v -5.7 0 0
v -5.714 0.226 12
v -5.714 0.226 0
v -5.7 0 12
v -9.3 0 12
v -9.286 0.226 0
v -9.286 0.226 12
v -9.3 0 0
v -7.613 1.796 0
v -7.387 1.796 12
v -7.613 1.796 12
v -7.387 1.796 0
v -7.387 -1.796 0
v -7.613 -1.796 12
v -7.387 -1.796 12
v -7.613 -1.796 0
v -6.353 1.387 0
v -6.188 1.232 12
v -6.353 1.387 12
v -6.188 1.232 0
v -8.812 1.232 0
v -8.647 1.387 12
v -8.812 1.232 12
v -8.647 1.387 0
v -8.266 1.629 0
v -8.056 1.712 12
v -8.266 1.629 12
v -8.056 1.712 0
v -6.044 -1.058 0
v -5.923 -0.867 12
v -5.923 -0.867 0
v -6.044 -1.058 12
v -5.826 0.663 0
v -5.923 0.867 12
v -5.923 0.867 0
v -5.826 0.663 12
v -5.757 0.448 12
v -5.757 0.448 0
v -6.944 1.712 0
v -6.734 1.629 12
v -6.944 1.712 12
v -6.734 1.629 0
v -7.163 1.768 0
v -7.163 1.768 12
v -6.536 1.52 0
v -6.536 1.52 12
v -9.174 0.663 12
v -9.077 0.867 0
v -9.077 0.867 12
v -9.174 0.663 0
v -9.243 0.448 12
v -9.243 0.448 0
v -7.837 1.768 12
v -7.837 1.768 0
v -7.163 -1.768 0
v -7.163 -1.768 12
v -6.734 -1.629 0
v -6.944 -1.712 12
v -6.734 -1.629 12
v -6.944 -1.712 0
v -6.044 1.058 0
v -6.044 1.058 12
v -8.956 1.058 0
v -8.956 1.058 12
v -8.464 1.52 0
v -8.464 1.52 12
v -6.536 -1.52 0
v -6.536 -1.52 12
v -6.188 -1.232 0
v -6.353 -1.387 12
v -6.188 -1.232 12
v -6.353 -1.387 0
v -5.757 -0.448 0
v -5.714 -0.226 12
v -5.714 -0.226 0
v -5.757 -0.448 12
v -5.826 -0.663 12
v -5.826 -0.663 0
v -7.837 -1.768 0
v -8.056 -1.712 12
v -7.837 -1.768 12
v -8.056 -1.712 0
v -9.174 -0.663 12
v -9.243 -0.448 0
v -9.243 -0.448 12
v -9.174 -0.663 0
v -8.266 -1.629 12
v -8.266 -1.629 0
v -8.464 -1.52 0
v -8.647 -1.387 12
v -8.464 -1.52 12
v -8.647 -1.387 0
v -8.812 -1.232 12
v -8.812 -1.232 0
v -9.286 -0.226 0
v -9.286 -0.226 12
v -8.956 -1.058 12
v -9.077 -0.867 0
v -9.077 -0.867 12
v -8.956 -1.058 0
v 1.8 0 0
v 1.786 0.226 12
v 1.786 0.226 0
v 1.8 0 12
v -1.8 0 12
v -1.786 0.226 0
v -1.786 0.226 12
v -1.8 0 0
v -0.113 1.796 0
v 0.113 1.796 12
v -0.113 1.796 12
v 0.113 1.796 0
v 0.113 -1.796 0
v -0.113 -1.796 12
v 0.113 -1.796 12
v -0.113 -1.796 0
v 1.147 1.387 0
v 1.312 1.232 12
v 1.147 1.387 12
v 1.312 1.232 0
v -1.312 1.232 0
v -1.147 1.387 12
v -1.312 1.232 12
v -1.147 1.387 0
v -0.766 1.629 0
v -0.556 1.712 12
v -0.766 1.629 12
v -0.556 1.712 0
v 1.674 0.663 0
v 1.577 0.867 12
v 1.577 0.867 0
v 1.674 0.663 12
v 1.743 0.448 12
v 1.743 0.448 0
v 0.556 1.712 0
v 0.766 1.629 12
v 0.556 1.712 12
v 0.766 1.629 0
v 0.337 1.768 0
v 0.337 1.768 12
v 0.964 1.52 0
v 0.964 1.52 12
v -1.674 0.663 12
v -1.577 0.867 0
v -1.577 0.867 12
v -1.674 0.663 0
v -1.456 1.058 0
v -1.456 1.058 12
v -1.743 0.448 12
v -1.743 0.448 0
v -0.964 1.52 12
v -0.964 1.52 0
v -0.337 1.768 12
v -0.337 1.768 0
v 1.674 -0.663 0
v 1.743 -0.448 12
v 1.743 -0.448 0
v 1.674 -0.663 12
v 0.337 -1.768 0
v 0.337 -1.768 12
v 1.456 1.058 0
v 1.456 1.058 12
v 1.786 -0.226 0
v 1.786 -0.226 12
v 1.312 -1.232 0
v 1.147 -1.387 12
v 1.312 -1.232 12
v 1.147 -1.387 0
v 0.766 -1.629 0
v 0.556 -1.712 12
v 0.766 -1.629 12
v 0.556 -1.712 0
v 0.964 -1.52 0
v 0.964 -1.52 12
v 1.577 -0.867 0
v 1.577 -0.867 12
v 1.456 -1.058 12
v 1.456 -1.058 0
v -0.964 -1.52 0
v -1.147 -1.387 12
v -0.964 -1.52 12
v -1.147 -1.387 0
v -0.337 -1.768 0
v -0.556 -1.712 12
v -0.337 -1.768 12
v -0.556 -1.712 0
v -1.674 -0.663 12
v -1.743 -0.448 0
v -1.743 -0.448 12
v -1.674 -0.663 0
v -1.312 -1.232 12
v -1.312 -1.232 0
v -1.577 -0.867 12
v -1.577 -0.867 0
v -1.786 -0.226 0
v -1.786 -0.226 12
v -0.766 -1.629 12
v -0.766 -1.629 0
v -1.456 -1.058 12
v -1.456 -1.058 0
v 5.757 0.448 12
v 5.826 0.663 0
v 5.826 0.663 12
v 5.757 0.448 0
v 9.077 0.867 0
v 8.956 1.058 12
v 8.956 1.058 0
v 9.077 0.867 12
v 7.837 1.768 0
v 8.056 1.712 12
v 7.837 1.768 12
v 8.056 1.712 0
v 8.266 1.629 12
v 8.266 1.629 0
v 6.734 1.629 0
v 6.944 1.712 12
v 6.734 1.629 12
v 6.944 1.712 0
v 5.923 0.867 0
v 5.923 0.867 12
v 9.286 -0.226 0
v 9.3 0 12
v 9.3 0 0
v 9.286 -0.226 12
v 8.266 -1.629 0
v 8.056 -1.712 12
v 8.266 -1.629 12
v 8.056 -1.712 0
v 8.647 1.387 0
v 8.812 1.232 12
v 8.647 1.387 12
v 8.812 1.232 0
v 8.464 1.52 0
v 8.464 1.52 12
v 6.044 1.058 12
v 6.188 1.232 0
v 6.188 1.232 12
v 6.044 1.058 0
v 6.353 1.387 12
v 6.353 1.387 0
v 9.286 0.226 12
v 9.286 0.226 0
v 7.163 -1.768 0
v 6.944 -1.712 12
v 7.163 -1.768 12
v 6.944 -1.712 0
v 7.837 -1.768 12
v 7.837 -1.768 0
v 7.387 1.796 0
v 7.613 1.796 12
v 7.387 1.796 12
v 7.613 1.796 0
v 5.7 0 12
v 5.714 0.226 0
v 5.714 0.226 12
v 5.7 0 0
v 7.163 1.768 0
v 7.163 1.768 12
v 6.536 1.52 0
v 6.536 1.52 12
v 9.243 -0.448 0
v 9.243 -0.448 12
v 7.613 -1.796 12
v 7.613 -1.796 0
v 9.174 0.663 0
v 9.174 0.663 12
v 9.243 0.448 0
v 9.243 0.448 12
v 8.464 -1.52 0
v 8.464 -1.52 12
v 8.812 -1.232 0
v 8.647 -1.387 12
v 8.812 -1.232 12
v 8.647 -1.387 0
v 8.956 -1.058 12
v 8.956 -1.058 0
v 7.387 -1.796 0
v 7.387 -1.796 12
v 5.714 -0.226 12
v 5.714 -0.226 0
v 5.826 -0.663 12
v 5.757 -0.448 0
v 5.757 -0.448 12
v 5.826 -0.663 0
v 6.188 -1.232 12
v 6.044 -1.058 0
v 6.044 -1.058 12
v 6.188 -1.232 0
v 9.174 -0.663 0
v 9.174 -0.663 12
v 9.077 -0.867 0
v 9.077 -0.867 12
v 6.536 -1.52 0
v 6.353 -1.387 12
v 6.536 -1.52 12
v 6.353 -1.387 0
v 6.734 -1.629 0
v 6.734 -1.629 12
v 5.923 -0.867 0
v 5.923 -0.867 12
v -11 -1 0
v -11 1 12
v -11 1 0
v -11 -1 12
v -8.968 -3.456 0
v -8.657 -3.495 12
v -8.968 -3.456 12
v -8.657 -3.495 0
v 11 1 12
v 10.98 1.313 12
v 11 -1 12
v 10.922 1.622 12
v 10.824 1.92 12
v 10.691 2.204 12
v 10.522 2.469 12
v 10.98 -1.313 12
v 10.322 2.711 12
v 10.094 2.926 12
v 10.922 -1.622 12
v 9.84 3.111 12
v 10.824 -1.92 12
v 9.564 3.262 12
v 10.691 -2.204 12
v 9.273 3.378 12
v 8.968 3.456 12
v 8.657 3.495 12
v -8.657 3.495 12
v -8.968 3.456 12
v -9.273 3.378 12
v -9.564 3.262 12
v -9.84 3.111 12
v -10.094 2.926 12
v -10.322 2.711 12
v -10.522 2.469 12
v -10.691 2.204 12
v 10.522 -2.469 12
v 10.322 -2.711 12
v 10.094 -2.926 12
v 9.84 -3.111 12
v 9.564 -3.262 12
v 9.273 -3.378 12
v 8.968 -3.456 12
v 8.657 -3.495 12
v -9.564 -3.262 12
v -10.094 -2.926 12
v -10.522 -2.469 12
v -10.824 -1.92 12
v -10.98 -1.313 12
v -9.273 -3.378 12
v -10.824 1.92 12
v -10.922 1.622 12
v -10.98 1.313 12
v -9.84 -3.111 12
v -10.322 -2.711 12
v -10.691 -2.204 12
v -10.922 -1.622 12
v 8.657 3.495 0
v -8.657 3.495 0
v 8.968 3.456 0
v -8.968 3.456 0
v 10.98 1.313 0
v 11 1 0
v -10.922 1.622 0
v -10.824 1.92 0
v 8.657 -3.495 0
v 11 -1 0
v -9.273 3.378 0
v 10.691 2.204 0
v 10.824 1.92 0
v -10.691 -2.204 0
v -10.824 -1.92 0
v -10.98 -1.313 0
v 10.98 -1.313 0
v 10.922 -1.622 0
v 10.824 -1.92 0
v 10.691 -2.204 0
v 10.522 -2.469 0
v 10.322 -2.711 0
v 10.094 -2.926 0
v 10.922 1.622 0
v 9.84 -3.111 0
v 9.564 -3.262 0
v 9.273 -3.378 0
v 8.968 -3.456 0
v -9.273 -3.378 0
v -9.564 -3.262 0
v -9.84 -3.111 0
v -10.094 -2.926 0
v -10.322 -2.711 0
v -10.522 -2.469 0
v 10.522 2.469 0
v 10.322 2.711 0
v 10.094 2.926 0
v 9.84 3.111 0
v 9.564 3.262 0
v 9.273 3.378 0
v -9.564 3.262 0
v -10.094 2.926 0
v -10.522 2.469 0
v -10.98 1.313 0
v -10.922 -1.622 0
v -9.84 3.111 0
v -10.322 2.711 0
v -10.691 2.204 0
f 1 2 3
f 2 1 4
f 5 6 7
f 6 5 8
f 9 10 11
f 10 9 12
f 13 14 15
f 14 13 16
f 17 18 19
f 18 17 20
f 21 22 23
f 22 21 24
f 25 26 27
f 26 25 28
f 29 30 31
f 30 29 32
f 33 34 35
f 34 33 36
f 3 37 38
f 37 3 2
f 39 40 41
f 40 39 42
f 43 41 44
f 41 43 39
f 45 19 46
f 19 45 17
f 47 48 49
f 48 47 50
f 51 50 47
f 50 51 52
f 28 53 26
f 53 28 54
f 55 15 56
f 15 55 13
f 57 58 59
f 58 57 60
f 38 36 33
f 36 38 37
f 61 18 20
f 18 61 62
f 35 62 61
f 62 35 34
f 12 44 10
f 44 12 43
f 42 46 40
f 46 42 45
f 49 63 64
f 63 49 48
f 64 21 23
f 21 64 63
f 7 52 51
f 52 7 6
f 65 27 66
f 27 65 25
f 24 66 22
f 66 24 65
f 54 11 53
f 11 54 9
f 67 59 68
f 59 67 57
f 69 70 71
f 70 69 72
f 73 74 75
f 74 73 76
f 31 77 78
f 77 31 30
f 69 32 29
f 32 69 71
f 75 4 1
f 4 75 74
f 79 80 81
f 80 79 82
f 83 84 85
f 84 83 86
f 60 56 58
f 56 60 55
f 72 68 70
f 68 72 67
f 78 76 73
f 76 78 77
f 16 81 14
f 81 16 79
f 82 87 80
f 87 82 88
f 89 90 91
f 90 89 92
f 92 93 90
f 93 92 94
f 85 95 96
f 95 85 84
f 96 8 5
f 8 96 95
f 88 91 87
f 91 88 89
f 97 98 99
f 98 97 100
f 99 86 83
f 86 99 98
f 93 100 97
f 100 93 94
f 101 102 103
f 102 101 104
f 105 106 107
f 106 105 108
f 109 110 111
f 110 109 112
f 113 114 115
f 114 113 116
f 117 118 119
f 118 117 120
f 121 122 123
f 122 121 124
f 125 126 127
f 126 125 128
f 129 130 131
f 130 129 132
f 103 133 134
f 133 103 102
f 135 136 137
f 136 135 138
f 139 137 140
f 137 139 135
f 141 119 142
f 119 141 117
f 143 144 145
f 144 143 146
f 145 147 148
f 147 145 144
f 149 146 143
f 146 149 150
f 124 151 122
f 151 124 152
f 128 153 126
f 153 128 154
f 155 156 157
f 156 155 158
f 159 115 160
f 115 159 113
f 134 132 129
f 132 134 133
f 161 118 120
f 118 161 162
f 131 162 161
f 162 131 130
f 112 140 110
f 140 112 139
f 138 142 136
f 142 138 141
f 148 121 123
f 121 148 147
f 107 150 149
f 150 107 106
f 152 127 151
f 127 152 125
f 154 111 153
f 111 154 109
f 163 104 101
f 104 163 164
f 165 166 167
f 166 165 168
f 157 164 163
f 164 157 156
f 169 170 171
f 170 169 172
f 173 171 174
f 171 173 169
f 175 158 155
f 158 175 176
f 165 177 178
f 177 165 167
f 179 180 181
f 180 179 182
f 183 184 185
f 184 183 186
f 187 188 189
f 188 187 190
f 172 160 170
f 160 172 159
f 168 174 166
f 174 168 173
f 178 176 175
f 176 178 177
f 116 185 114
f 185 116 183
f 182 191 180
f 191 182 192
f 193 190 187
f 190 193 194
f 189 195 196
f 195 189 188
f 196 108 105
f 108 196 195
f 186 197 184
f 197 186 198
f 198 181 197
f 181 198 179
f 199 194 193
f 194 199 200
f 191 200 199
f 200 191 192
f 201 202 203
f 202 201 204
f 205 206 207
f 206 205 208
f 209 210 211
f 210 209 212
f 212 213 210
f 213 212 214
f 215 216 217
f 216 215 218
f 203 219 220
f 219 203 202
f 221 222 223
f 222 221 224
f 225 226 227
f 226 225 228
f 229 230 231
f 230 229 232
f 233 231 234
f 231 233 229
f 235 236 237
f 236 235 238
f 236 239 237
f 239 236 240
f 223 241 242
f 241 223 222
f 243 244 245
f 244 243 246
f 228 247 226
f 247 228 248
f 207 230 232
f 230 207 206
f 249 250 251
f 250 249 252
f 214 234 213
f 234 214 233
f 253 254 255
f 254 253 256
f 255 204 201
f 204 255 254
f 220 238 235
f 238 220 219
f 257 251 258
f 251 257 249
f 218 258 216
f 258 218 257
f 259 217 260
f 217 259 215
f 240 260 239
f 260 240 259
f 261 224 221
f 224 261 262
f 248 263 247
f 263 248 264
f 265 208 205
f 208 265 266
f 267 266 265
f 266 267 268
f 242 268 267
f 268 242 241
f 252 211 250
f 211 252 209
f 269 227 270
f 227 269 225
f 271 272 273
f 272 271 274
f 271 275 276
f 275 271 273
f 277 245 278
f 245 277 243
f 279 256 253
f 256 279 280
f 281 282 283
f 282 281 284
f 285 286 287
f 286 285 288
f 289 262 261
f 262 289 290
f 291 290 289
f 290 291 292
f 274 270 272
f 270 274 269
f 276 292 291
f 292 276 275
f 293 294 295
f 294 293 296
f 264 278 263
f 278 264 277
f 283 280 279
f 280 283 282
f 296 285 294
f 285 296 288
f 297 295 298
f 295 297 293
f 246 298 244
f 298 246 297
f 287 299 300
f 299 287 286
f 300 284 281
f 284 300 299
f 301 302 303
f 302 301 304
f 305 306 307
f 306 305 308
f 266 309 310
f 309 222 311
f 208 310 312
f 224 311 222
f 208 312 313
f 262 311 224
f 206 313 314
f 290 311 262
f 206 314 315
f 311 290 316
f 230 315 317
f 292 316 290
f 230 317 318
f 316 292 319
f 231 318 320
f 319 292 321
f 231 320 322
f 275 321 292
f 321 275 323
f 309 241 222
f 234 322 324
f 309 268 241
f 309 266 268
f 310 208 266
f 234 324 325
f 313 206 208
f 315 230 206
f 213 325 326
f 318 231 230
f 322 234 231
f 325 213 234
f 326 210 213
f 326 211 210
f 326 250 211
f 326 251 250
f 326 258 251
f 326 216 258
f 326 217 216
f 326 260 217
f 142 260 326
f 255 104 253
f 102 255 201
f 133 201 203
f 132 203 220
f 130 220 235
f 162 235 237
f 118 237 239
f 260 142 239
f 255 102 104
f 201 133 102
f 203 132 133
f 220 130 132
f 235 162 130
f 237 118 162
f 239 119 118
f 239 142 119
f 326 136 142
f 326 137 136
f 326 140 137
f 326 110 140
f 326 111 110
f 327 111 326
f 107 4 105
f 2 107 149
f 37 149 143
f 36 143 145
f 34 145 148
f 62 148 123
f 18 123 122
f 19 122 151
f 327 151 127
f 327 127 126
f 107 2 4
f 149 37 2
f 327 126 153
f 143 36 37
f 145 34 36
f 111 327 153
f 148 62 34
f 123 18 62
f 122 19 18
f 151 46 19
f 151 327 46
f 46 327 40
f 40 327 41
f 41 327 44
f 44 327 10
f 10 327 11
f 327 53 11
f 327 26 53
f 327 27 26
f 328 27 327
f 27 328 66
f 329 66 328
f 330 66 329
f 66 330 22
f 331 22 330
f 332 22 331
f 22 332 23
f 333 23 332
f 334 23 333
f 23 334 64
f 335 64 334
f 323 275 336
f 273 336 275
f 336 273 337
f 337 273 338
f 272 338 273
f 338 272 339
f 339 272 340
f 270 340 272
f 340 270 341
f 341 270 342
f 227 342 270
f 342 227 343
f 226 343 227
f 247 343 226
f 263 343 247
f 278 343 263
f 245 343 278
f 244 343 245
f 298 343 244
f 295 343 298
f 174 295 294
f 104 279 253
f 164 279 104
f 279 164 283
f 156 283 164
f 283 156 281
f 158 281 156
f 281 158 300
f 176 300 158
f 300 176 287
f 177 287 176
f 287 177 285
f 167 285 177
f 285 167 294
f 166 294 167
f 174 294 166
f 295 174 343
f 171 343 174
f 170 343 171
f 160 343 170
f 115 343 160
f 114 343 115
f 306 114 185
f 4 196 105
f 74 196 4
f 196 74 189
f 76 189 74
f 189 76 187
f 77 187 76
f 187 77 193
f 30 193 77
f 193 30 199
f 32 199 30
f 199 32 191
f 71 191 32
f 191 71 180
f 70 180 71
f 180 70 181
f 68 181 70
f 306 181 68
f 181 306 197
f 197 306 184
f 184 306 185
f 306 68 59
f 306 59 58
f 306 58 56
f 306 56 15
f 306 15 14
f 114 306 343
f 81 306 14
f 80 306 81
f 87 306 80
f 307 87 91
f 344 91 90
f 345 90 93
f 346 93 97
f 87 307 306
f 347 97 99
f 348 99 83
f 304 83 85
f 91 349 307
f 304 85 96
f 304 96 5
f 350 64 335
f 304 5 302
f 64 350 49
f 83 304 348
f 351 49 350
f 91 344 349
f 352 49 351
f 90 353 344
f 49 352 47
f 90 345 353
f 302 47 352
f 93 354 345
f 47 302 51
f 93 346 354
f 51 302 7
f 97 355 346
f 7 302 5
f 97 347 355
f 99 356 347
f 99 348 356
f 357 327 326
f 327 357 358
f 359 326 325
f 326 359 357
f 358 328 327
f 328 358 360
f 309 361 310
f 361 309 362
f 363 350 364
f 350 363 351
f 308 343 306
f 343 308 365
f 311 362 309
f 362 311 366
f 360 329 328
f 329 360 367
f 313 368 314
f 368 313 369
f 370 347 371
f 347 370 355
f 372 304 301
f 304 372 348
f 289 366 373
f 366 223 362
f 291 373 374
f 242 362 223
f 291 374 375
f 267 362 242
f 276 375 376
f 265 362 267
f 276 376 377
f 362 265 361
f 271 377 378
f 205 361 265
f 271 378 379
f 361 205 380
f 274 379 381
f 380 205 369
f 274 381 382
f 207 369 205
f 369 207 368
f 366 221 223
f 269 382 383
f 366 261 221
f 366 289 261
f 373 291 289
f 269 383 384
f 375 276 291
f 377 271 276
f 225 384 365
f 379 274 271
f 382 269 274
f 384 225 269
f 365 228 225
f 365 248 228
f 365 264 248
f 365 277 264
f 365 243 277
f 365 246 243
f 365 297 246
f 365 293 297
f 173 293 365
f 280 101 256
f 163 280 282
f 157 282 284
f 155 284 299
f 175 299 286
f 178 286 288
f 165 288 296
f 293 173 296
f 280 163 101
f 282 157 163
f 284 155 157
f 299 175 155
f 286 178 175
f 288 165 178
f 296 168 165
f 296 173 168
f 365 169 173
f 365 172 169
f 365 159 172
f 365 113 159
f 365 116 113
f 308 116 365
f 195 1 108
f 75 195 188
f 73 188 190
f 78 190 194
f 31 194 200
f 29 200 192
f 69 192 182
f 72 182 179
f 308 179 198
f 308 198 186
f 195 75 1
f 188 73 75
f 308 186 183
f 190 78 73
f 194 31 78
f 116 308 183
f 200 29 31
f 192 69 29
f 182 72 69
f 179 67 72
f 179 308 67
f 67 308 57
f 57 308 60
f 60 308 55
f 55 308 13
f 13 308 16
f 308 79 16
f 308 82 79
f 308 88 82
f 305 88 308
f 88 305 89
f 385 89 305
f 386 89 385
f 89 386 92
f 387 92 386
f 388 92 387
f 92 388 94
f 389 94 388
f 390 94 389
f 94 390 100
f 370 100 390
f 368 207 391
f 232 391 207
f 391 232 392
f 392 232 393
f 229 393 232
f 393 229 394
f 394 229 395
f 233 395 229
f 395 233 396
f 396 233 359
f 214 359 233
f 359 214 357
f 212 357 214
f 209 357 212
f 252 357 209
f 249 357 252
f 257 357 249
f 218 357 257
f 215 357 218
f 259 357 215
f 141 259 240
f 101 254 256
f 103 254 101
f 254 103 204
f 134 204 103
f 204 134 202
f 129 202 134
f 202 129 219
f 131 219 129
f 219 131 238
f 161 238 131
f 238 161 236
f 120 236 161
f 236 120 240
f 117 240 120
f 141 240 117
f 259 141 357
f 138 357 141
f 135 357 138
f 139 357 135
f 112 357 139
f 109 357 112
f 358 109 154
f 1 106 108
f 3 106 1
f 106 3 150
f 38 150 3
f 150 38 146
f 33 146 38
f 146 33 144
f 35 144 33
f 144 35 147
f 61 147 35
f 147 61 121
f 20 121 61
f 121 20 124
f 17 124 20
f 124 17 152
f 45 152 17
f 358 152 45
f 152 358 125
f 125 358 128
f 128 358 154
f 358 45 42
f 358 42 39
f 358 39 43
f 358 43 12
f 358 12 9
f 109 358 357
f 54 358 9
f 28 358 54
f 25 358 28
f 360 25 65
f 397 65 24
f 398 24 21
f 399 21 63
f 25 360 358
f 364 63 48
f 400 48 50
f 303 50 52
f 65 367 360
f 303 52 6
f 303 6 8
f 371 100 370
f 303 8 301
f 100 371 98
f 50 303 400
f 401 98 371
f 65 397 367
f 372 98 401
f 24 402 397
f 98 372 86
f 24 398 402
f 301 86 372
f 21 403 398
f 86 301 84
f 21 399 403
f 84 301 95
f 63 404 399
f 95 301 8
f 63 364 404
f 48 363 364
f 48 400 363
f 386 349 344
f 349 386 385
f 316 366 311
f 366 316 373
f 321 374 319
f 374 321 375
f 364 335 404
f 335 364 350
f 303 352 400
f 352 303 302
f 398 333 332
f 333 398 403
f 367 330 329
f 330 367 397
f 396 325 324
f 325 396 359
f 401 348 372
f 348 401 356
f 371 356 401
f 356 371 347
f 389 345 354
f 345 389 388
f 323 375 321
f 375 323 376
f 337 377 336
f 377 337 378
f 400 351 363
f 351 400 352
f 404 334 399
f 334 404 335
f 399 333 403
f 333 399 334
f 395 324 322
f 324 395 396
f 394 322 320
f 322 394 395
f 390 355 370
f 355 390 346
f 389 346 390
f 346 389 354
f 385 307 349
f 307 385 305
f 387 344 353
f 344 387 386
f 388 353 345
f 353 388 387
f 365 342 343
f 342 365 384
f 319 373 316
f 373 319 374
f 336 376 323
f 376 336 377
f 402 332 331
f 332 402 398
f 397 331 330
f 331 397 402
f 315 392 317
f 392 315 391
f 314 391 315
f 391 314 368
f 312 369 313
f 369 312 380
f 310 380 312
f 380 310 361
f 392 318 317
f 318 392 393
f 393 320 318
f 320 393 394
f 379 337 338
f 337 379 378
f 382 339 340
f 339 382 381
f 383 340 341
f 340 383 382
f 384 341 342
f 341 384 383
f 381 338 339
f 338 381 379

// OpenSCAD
$fn = 50;


difference() {
	union() {
		translate(v = [0, 0, 0]) {
			rotate(a = [0, 0, 0]) {
				hull() {
					translate(v = [-8.5000000000, 1.0000000000, 0]) {
						rotate(a = [0, 0, 0]) {
							translate(v = [0, 0, 0]) {
								rotate(a = [0, 0, 0]) {
									cylinder(h = 12, r = 2.5000000000);
								}
							}
						}
					}
					translate(v = [8.5000000000, 1.0000000000, 0]) {
						rotate(a = [0, 0, 0]) {
							translate(v = [0, 0, 0]) {
								rotate(a = [0, 0, 0]) {
									cylinder(h = 12, r = 2.5000000000);
								}
							}
						}
					}
					translate(v = [-8.5000000000, -1.0000000000, 0]) {
						rotate(a = [0, 0, 0]) {
							translate(v = [0, 0, 0]) {
								rotate(a = [0, 0, 0]) {
									cylinder(h = 12, r = 2.5000000000);
								}
							}
						}
					}
					translate(v = [8.5000000000, -1.0000000000, 0]) {
						rotate(a = [0, 0, 0]) {
							translate(v = [0, 0, 0]) {
								rotate(a = [0, 0, 0]) {
									cylinder(h = 12, r = 2.5000000000);
								}
							}
						}
					}
				}
			}
		}
	}
	union() {
		translate(v = [-7.5000000000, 0.0000000000, 0]) {
			rotate(a = [0, 0, 0]) {
				translate(v = [0, 0, -50]) {
					rotate(a = [0, 0, 0]) {
						cylinder(h = 100, r = 1.8000000000);
					}
				}
			}
		}
		translate(v = [0.0000000000, 0.0000000000, 0]) {
			rotate(a = [0, 0, 0]) {
				translate(v = [0, 0, -50]) {
					rotate(a = [0, 0, 0]) {
						cylinder(h = 100, r = 1.8000000000);
					}
				}
			}
		}
		translate(v = [7.5000000000, 0.0000000000, 0]) {
			rotate(a = [0, 0, 0]) {
				translate(v = [0, 0, -50]) {
					rotate(a = [0, 0, 0]) {
						cylinder(h = 100, r = 1.8000000000);
					}
				}
			}
		}
	}
}
